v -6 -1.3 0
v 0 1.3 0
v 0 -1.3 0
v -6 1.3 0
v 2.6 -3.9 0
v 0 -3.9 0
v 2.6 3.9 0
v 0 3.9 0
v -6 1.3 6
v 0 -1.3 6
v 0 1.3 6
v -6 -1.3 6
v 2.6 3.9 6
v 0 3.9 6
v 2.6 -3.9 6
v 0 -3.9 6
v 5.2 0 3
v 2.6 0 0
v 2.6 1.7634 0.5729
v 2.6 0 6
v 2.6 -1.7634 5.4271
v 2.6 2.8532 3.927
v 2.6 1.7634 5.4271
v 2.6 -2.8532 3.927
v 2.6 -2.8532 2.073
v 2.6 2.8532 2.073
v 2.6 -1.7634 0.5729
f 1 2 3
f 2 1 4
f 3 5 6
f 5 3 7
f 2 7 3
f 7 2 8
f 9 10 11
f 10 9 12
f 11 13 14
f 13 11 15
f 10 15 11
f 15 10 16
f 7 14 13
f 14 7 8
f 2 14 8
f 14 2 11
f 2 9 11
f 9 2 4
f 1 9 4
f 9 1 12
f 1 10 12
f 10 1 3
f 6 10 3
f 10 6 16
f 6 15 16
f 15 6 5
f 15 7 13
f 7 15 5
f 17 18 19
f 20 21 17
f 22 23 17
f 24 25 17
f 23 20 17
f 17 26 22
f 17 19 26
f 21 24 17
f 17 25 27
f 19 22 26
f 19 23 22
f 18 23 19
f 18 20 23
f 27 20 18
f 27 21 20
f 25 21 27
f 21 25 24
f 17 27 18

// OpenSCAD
// -*- mode: SCAD ; c-file-style: "ellemtel" ; coding: utf-8 -*-
//
// NN
//
// © 2017 Roland Sieker <ospalh@gmail.com>
// Licence: CC-BY-SA 4.0


zmin = 6;

h = 6;
w=6;
gr = 2.6;

gh=gr/2;

module p()
{
   polygon(
      [
         [-h,-gh],
         [0,-gh],
         [0,-gh-gr],
         [gr,-gh-gr],
         [gr,-gh],
         [gr,gh],
         [gr,gh+gr],
         [0,gh+gr],
         [0,gh],
         [-h,gh],
         ]
      );
}

module pt()
{
   linear_extrude(w)
   {
      p();
   }
}

pt();
translate([gr,0,w/2])
{
   rotate([0, 90,0])
   {
      cylinder(r1=w/2,r2=0,h=gr);
   }
}
